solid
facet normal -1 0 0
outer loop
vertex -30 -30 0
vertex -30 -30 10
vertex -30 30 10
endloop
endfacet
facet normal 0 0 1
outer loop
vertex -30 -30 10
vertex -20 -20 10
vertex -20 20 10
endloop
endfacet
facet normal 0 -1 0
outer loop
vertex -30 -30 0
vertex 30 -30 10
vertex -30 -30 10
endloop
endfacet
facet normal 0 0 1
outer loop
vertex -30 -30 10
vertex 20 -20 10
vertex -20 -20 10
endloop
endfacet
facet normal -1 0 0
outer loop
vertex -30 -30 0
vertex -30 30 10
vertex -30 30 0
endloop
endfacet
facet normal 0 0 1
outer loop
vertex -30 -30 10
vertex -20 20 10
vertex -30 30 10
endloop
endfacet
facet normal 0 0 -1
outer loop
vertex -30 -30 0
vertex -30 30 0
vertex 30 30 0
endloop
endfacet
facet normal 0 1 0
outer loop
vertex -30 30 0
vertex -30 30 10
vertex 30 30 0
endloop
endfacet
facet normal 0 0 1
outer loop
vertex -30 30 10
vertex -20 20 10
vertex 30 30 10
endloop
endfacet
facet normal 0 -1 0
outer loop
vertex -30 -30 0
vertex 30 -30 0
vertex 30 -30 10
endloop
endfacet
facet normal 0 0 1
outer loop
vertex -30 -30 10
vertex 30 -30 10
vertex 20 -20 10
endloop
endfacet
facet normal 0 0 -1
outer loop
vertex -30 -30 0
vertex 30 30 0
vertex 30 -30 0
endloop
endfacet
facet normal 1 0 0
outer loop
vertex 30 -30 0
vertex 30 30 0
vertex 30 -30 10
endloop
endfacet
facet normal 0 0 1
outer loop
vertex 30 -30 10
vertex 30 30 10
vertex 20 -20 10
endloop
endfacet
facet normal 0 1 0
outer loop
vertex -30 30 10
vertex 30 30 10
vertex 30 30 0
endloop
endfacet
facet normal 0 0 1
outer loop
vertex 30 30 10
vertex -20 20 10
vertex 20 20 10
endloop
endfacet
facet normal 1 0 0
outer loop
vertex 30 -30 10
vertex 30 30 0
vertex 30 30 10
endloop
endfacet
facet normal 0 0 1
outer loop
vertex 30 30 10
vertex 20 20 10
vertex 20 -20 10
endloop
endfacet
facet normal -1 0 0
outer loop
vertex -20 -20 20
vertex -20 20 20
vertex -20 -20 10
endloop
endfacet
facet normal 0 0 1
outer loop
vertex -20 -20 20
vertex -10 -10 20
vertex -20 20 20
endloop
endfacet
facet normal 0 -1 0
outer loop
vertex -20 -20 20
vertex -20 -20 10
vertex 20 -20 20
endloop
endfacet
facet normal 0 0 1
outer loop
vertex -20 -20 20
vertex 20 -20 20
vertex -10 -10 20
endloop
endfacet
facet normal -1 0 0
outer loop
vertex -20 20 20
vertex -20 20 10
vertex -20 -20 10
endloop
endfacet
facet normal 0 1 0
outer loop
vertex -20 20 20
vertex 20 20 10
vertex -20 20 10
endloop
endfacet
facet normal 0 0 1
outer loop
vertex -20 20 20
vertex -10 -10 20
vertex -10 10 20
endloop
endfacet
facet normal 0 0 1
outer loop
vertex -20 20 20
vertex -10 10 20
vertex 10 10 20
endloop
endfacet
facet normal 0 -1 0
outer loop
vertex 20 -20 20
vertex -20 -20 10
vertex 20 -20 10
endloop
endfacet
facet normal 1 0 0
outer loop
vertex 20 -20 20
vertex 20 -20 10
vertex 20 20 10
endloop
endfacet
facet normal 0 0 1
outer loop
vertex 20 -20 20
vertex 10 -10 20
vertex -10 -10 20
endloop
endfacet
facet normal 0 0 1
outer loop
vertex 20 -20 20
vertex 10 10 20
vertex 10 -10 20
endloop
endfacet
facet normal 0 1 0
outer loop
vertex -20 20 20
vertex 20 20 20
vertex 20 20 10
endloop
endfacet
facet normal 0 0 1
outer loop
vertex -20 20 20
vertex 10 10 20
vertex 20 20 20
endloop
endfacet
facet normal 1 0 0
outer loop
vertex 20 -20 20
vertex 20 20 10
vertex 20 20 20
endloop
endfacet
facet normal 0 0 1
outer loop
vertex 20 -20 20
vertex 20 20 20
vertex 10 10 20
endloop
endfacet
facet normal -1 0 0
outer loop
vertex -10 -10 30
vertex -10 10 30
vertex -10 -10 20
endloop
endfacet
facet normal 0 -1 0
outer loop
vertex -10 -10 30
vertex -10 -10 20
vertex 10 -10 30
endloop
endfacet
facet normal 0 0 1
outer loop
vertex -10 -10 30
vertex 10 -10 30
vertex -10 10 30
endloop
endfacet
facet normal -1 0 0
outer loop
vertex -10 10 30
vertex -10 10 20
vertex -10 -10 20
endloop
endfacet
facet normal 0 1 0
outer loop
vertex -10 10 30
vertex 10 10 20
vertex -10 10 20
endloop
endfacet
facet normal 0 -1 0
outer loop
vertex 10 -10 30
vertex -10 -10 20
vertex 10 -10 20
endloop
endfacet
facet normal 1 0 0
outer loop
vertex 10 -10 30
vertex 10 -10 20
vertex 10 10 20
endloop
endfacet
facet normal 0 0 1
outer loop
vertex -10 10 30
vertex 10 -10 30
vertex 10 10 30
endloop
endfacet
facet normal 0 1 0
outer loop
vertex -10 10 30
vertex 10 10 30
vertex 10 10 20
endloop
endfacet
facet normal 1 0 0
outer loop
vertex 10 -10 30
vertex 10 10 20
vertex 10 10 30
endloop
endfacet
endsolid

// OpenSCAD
// 3段の階段状ピラミッド
translate([-30,-30,0]) cube([60,60,10]);
translate([-20,-20,10]) cube([40,40,10]);
translate([-10,-10,20]) cube([20,20,10]);
